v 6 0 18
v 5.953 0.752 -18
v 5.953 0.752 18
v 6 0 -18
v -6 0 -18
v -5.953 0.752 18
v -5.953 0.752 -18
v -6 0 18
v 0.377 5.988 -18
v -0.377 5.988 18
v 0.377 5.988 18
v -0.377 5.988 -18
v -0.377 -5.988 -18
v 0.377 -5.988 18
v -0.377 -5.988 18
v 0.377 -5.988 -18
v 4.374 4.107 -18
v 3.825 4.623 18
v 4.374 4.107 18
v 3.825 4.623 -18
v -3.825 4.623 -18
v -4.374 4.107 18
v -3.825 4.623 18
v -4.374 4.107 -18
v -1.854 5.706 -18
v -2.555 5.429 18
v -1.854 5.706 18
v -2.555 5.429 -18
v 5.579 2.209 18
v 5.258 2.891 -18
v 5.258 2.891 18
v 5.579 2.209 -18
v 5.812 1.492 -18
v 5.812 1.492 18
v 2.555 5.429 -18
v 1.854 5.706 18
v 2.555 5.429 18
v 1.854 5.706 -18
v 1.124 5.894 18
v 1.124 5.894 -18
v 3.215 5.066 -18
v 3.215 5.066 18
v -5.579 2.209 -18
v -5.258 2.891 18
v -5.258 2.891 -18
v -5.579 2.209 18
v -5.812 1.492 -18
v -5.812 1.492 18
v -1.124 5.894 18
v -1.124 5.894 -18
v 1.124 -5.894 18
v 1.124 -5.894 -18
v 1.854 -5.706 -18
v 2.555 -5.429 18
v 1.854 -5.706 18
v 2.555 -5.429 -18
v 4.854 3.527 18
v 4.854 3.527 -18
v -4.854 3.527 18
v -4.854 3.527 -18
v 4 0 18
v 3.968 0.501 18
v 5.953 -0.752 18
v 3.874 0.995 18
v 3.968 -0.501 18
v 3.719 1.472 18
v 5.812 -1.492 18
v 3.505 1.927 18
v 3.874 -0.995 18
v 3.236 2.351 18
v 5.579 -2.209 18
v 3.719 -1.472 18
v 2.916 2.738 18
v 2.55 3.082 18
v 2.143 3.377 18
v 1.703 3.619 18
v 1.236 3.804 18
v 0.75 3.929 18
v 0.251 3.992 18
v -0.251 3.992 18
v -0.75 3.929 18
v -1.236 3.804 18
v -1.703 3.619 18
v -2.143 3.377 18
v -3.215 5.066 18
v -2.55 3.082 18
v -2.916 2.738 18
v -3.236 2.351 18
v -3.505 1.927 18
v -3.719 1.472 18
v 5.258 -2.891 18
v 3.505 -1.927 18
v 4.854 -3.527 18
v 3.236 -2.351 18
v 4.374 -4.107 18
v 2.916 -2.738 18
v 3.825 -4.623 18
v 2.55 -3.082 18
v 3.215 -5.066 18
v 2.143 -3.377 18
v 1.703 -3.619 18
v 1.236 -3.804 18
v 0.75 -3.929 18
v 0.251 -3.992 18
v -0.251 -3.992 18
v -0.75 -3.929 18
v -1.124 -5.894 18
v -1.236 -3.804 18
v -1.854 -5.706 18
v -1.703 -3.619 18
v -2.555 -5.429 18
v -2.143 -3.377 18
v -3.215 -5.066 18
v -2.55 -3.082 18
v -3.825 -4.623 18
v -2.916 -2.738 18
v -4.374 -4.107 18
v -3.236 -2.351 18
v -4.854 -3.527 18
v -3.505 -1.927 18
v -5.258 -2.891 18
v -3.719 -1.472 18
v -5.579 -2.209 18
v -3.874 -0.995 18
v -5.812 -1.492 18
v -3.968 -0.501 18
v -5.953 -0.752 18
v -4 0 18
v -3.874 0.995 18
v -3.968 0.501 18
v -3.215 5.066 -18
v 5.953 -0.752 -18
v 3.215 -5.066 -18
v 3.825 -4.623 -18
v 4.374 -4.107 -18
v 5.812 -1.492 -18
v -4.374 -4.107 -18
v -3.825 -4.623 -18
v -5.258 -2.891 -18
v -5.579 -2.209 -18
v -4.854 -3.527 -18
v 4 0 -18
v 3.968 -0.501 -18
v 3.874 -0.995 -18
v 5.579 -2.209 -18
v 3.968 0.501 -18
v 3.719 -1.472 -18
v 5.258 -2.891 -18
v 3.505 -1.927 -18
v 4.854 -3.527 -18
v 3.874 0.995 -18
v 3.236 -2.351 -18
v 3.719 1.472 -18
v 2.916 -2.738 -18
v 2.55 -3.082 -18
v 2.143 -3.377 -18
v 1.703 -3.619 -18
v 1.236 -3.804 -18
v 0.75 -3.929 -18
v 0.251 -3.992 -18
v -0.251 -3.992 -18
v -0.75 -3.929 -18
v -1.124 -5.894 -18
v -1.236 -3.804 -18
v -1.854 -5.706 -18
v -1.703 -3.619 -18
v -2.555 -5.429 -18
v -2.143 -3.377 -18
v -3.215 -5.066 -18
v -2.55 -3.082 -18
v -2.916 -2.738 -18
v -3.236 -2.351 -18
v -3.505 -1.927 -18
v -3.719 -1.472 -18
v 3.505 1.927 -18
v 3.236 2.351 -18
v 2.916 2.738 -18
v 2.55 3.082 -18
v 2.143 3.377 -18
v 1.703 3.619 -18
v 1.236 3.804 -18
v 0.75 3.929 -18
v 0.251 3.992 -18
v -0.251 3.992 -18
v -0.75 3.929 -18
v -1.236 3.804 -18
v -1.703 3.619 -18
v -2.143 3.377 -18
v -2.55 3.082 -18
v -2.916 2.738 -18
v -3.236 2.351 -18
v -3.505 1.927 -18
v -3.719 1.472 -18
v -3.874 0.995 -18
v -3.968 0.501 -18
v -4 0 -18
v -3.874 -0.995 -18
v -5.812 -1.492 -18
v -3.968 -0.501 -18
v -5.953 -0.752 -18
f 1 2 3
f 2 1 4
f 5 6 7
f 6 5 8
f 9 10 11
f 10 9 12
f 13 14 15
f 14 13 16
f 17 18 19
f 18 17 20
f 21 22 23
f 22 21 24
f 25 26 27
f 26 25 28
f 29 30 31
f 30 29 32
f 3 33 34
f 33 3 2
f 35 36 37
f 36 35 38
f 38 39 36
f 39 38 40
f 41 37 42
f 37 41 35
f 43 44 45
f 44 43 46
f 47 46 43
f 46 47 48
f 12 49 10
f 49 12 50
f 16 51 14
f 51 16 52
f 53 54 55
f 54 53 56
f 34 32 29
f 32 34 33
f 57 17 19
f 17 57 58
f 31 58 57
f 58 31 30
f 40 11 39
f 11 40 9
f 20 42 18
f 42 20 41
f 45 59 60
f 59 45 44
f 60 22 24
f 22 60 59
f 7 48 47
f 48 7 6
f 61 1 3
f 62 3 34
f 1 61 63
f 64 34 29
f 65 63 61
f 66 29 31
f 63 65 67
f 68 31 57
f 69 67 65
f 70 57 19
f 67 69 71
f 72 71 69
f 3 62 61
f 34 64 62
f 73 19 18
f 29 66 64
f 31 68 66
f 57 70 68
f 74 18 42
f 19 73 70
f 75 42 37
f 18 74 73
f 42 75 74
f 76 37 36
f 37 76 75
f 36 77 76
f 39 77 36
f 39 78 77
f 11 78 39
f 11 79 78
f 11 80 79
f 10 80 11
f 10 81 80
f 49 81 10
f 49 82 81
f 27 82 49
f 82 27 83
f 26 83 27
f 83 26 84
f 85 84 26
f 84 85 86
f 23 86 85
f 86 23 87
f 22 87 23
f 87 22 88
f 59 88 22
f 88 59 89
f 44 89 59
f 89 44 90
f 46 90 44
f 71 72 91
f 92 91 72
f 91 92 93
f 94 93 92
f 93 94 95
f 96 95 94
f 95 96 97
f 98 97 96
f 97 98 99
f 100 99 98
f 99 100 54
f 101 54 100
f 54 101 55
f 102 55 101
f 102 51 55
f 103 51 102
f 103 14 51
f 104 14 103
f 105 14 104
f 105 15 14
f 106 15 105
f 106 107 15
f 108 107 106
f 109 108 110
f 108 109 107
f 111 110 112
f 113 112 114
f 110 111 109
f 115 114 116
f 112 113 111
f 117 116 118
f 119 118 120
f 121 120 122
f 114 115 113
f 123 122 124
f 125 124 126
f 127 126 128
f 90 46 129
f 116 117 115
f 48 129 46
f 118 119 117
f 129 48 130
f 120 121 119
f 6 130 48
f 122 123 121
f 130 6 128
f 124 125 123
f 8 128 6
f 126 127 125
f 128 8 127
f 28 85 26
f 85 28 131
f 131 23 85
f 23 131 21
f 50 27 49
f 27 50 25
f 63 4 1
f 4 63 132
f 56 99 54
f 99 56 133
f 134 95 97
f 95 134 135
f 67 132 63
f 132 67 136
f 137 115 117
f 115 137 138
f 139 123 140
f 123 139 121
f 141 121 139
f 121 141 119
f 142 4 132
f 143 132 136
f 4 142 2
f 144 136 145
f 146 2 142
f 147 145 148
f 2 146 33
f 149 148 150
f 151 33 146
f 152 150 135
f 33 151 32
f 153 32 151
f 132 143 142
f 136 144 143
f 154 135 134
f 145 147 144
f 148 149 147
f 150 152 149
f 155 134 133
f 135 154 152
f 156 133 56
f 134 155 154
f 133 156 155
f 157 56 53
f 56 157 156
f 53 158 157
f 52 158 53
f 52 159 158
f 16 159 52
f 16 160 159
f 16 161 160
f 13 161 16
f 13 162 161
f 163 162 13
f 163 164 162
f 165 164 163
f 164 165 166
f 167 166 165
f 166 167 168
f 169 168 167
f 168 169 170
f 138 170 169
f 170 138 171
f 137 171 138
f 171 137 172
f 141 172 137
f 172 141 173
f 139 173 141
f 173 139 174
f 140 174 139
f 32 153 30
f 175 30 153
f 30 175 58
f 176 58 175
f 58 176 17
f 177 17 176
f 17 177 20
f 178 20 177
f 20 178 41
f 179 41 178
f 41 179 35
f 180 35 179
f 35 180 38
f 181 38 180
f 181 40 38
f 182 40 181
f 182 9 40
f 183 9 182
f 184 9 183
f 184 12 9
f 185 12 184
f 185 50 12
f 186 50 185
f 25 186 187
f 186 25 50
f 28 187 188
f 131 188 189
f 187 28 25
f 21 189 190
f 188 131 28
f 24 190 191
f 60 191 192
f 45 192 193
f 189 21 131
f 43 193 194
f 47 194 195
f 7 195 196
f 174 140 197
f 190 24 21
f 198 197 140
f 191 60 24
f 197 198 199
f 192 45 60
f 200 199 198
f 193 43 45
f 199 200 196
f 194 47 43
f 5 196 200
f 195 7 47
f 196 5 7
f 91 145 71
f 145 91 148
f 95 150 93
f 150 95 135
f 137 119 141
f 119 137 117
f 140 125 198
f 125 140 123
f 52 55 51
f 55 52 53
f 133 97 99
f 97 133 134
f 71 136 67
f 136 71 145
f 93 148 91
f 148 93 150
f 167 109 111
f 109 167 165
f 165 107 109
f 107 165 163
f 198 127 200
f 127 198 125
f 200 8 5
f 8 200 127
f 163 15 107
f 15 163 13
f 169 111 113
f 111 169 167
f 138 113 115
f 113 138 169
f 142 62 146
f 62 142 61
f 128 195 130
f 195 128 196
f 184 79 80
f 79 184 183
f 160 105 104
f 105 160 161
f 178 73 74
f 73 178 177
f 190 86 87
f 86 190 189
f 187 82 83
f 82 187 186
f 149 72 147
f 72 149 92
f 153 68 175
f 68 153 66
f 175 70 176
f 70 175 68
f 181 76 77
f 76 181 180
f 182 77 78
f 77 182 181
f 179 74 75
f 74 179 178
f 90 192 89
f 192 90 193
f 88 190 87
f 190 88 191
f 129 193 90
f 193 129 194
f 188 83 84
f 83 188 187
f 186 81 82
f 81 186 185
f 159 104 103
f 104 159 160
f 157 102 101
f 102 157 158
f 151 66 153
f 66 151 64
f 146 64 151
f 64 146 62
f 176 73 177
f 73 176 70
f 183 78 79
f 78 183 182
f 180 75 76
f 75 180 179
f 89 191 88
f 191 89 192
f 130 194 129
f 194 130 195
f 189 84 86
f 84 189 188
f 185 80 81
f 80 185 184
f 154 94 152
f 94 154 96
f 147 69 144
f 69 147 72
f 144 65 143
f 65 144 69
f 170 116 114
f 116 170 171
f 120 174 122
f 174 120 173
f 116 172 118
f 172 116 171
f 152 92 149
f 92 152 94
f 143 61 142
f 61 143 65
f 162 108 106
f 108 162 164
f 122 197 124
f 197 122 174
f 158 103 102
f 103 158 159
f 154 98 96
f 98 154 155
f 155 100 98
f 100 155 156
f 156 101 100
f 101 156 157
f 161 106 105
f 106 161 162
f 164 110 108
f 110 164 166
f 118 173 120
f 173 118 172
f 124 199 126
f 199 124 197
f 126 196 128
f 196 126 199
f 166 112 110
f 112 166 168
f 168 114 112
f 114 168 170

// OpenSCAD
$fn = 50;


difference() {
	union() {
		translate(v = [0, 0, -18.0000000000]) {
			cylinder(h = 36, r = 6.0000000000);
		}
	}
	union() {
		translate(v = [0, 0, -100.0000000000]) {
			cylinder(h = 200, r = 4);
		}
	}
}
